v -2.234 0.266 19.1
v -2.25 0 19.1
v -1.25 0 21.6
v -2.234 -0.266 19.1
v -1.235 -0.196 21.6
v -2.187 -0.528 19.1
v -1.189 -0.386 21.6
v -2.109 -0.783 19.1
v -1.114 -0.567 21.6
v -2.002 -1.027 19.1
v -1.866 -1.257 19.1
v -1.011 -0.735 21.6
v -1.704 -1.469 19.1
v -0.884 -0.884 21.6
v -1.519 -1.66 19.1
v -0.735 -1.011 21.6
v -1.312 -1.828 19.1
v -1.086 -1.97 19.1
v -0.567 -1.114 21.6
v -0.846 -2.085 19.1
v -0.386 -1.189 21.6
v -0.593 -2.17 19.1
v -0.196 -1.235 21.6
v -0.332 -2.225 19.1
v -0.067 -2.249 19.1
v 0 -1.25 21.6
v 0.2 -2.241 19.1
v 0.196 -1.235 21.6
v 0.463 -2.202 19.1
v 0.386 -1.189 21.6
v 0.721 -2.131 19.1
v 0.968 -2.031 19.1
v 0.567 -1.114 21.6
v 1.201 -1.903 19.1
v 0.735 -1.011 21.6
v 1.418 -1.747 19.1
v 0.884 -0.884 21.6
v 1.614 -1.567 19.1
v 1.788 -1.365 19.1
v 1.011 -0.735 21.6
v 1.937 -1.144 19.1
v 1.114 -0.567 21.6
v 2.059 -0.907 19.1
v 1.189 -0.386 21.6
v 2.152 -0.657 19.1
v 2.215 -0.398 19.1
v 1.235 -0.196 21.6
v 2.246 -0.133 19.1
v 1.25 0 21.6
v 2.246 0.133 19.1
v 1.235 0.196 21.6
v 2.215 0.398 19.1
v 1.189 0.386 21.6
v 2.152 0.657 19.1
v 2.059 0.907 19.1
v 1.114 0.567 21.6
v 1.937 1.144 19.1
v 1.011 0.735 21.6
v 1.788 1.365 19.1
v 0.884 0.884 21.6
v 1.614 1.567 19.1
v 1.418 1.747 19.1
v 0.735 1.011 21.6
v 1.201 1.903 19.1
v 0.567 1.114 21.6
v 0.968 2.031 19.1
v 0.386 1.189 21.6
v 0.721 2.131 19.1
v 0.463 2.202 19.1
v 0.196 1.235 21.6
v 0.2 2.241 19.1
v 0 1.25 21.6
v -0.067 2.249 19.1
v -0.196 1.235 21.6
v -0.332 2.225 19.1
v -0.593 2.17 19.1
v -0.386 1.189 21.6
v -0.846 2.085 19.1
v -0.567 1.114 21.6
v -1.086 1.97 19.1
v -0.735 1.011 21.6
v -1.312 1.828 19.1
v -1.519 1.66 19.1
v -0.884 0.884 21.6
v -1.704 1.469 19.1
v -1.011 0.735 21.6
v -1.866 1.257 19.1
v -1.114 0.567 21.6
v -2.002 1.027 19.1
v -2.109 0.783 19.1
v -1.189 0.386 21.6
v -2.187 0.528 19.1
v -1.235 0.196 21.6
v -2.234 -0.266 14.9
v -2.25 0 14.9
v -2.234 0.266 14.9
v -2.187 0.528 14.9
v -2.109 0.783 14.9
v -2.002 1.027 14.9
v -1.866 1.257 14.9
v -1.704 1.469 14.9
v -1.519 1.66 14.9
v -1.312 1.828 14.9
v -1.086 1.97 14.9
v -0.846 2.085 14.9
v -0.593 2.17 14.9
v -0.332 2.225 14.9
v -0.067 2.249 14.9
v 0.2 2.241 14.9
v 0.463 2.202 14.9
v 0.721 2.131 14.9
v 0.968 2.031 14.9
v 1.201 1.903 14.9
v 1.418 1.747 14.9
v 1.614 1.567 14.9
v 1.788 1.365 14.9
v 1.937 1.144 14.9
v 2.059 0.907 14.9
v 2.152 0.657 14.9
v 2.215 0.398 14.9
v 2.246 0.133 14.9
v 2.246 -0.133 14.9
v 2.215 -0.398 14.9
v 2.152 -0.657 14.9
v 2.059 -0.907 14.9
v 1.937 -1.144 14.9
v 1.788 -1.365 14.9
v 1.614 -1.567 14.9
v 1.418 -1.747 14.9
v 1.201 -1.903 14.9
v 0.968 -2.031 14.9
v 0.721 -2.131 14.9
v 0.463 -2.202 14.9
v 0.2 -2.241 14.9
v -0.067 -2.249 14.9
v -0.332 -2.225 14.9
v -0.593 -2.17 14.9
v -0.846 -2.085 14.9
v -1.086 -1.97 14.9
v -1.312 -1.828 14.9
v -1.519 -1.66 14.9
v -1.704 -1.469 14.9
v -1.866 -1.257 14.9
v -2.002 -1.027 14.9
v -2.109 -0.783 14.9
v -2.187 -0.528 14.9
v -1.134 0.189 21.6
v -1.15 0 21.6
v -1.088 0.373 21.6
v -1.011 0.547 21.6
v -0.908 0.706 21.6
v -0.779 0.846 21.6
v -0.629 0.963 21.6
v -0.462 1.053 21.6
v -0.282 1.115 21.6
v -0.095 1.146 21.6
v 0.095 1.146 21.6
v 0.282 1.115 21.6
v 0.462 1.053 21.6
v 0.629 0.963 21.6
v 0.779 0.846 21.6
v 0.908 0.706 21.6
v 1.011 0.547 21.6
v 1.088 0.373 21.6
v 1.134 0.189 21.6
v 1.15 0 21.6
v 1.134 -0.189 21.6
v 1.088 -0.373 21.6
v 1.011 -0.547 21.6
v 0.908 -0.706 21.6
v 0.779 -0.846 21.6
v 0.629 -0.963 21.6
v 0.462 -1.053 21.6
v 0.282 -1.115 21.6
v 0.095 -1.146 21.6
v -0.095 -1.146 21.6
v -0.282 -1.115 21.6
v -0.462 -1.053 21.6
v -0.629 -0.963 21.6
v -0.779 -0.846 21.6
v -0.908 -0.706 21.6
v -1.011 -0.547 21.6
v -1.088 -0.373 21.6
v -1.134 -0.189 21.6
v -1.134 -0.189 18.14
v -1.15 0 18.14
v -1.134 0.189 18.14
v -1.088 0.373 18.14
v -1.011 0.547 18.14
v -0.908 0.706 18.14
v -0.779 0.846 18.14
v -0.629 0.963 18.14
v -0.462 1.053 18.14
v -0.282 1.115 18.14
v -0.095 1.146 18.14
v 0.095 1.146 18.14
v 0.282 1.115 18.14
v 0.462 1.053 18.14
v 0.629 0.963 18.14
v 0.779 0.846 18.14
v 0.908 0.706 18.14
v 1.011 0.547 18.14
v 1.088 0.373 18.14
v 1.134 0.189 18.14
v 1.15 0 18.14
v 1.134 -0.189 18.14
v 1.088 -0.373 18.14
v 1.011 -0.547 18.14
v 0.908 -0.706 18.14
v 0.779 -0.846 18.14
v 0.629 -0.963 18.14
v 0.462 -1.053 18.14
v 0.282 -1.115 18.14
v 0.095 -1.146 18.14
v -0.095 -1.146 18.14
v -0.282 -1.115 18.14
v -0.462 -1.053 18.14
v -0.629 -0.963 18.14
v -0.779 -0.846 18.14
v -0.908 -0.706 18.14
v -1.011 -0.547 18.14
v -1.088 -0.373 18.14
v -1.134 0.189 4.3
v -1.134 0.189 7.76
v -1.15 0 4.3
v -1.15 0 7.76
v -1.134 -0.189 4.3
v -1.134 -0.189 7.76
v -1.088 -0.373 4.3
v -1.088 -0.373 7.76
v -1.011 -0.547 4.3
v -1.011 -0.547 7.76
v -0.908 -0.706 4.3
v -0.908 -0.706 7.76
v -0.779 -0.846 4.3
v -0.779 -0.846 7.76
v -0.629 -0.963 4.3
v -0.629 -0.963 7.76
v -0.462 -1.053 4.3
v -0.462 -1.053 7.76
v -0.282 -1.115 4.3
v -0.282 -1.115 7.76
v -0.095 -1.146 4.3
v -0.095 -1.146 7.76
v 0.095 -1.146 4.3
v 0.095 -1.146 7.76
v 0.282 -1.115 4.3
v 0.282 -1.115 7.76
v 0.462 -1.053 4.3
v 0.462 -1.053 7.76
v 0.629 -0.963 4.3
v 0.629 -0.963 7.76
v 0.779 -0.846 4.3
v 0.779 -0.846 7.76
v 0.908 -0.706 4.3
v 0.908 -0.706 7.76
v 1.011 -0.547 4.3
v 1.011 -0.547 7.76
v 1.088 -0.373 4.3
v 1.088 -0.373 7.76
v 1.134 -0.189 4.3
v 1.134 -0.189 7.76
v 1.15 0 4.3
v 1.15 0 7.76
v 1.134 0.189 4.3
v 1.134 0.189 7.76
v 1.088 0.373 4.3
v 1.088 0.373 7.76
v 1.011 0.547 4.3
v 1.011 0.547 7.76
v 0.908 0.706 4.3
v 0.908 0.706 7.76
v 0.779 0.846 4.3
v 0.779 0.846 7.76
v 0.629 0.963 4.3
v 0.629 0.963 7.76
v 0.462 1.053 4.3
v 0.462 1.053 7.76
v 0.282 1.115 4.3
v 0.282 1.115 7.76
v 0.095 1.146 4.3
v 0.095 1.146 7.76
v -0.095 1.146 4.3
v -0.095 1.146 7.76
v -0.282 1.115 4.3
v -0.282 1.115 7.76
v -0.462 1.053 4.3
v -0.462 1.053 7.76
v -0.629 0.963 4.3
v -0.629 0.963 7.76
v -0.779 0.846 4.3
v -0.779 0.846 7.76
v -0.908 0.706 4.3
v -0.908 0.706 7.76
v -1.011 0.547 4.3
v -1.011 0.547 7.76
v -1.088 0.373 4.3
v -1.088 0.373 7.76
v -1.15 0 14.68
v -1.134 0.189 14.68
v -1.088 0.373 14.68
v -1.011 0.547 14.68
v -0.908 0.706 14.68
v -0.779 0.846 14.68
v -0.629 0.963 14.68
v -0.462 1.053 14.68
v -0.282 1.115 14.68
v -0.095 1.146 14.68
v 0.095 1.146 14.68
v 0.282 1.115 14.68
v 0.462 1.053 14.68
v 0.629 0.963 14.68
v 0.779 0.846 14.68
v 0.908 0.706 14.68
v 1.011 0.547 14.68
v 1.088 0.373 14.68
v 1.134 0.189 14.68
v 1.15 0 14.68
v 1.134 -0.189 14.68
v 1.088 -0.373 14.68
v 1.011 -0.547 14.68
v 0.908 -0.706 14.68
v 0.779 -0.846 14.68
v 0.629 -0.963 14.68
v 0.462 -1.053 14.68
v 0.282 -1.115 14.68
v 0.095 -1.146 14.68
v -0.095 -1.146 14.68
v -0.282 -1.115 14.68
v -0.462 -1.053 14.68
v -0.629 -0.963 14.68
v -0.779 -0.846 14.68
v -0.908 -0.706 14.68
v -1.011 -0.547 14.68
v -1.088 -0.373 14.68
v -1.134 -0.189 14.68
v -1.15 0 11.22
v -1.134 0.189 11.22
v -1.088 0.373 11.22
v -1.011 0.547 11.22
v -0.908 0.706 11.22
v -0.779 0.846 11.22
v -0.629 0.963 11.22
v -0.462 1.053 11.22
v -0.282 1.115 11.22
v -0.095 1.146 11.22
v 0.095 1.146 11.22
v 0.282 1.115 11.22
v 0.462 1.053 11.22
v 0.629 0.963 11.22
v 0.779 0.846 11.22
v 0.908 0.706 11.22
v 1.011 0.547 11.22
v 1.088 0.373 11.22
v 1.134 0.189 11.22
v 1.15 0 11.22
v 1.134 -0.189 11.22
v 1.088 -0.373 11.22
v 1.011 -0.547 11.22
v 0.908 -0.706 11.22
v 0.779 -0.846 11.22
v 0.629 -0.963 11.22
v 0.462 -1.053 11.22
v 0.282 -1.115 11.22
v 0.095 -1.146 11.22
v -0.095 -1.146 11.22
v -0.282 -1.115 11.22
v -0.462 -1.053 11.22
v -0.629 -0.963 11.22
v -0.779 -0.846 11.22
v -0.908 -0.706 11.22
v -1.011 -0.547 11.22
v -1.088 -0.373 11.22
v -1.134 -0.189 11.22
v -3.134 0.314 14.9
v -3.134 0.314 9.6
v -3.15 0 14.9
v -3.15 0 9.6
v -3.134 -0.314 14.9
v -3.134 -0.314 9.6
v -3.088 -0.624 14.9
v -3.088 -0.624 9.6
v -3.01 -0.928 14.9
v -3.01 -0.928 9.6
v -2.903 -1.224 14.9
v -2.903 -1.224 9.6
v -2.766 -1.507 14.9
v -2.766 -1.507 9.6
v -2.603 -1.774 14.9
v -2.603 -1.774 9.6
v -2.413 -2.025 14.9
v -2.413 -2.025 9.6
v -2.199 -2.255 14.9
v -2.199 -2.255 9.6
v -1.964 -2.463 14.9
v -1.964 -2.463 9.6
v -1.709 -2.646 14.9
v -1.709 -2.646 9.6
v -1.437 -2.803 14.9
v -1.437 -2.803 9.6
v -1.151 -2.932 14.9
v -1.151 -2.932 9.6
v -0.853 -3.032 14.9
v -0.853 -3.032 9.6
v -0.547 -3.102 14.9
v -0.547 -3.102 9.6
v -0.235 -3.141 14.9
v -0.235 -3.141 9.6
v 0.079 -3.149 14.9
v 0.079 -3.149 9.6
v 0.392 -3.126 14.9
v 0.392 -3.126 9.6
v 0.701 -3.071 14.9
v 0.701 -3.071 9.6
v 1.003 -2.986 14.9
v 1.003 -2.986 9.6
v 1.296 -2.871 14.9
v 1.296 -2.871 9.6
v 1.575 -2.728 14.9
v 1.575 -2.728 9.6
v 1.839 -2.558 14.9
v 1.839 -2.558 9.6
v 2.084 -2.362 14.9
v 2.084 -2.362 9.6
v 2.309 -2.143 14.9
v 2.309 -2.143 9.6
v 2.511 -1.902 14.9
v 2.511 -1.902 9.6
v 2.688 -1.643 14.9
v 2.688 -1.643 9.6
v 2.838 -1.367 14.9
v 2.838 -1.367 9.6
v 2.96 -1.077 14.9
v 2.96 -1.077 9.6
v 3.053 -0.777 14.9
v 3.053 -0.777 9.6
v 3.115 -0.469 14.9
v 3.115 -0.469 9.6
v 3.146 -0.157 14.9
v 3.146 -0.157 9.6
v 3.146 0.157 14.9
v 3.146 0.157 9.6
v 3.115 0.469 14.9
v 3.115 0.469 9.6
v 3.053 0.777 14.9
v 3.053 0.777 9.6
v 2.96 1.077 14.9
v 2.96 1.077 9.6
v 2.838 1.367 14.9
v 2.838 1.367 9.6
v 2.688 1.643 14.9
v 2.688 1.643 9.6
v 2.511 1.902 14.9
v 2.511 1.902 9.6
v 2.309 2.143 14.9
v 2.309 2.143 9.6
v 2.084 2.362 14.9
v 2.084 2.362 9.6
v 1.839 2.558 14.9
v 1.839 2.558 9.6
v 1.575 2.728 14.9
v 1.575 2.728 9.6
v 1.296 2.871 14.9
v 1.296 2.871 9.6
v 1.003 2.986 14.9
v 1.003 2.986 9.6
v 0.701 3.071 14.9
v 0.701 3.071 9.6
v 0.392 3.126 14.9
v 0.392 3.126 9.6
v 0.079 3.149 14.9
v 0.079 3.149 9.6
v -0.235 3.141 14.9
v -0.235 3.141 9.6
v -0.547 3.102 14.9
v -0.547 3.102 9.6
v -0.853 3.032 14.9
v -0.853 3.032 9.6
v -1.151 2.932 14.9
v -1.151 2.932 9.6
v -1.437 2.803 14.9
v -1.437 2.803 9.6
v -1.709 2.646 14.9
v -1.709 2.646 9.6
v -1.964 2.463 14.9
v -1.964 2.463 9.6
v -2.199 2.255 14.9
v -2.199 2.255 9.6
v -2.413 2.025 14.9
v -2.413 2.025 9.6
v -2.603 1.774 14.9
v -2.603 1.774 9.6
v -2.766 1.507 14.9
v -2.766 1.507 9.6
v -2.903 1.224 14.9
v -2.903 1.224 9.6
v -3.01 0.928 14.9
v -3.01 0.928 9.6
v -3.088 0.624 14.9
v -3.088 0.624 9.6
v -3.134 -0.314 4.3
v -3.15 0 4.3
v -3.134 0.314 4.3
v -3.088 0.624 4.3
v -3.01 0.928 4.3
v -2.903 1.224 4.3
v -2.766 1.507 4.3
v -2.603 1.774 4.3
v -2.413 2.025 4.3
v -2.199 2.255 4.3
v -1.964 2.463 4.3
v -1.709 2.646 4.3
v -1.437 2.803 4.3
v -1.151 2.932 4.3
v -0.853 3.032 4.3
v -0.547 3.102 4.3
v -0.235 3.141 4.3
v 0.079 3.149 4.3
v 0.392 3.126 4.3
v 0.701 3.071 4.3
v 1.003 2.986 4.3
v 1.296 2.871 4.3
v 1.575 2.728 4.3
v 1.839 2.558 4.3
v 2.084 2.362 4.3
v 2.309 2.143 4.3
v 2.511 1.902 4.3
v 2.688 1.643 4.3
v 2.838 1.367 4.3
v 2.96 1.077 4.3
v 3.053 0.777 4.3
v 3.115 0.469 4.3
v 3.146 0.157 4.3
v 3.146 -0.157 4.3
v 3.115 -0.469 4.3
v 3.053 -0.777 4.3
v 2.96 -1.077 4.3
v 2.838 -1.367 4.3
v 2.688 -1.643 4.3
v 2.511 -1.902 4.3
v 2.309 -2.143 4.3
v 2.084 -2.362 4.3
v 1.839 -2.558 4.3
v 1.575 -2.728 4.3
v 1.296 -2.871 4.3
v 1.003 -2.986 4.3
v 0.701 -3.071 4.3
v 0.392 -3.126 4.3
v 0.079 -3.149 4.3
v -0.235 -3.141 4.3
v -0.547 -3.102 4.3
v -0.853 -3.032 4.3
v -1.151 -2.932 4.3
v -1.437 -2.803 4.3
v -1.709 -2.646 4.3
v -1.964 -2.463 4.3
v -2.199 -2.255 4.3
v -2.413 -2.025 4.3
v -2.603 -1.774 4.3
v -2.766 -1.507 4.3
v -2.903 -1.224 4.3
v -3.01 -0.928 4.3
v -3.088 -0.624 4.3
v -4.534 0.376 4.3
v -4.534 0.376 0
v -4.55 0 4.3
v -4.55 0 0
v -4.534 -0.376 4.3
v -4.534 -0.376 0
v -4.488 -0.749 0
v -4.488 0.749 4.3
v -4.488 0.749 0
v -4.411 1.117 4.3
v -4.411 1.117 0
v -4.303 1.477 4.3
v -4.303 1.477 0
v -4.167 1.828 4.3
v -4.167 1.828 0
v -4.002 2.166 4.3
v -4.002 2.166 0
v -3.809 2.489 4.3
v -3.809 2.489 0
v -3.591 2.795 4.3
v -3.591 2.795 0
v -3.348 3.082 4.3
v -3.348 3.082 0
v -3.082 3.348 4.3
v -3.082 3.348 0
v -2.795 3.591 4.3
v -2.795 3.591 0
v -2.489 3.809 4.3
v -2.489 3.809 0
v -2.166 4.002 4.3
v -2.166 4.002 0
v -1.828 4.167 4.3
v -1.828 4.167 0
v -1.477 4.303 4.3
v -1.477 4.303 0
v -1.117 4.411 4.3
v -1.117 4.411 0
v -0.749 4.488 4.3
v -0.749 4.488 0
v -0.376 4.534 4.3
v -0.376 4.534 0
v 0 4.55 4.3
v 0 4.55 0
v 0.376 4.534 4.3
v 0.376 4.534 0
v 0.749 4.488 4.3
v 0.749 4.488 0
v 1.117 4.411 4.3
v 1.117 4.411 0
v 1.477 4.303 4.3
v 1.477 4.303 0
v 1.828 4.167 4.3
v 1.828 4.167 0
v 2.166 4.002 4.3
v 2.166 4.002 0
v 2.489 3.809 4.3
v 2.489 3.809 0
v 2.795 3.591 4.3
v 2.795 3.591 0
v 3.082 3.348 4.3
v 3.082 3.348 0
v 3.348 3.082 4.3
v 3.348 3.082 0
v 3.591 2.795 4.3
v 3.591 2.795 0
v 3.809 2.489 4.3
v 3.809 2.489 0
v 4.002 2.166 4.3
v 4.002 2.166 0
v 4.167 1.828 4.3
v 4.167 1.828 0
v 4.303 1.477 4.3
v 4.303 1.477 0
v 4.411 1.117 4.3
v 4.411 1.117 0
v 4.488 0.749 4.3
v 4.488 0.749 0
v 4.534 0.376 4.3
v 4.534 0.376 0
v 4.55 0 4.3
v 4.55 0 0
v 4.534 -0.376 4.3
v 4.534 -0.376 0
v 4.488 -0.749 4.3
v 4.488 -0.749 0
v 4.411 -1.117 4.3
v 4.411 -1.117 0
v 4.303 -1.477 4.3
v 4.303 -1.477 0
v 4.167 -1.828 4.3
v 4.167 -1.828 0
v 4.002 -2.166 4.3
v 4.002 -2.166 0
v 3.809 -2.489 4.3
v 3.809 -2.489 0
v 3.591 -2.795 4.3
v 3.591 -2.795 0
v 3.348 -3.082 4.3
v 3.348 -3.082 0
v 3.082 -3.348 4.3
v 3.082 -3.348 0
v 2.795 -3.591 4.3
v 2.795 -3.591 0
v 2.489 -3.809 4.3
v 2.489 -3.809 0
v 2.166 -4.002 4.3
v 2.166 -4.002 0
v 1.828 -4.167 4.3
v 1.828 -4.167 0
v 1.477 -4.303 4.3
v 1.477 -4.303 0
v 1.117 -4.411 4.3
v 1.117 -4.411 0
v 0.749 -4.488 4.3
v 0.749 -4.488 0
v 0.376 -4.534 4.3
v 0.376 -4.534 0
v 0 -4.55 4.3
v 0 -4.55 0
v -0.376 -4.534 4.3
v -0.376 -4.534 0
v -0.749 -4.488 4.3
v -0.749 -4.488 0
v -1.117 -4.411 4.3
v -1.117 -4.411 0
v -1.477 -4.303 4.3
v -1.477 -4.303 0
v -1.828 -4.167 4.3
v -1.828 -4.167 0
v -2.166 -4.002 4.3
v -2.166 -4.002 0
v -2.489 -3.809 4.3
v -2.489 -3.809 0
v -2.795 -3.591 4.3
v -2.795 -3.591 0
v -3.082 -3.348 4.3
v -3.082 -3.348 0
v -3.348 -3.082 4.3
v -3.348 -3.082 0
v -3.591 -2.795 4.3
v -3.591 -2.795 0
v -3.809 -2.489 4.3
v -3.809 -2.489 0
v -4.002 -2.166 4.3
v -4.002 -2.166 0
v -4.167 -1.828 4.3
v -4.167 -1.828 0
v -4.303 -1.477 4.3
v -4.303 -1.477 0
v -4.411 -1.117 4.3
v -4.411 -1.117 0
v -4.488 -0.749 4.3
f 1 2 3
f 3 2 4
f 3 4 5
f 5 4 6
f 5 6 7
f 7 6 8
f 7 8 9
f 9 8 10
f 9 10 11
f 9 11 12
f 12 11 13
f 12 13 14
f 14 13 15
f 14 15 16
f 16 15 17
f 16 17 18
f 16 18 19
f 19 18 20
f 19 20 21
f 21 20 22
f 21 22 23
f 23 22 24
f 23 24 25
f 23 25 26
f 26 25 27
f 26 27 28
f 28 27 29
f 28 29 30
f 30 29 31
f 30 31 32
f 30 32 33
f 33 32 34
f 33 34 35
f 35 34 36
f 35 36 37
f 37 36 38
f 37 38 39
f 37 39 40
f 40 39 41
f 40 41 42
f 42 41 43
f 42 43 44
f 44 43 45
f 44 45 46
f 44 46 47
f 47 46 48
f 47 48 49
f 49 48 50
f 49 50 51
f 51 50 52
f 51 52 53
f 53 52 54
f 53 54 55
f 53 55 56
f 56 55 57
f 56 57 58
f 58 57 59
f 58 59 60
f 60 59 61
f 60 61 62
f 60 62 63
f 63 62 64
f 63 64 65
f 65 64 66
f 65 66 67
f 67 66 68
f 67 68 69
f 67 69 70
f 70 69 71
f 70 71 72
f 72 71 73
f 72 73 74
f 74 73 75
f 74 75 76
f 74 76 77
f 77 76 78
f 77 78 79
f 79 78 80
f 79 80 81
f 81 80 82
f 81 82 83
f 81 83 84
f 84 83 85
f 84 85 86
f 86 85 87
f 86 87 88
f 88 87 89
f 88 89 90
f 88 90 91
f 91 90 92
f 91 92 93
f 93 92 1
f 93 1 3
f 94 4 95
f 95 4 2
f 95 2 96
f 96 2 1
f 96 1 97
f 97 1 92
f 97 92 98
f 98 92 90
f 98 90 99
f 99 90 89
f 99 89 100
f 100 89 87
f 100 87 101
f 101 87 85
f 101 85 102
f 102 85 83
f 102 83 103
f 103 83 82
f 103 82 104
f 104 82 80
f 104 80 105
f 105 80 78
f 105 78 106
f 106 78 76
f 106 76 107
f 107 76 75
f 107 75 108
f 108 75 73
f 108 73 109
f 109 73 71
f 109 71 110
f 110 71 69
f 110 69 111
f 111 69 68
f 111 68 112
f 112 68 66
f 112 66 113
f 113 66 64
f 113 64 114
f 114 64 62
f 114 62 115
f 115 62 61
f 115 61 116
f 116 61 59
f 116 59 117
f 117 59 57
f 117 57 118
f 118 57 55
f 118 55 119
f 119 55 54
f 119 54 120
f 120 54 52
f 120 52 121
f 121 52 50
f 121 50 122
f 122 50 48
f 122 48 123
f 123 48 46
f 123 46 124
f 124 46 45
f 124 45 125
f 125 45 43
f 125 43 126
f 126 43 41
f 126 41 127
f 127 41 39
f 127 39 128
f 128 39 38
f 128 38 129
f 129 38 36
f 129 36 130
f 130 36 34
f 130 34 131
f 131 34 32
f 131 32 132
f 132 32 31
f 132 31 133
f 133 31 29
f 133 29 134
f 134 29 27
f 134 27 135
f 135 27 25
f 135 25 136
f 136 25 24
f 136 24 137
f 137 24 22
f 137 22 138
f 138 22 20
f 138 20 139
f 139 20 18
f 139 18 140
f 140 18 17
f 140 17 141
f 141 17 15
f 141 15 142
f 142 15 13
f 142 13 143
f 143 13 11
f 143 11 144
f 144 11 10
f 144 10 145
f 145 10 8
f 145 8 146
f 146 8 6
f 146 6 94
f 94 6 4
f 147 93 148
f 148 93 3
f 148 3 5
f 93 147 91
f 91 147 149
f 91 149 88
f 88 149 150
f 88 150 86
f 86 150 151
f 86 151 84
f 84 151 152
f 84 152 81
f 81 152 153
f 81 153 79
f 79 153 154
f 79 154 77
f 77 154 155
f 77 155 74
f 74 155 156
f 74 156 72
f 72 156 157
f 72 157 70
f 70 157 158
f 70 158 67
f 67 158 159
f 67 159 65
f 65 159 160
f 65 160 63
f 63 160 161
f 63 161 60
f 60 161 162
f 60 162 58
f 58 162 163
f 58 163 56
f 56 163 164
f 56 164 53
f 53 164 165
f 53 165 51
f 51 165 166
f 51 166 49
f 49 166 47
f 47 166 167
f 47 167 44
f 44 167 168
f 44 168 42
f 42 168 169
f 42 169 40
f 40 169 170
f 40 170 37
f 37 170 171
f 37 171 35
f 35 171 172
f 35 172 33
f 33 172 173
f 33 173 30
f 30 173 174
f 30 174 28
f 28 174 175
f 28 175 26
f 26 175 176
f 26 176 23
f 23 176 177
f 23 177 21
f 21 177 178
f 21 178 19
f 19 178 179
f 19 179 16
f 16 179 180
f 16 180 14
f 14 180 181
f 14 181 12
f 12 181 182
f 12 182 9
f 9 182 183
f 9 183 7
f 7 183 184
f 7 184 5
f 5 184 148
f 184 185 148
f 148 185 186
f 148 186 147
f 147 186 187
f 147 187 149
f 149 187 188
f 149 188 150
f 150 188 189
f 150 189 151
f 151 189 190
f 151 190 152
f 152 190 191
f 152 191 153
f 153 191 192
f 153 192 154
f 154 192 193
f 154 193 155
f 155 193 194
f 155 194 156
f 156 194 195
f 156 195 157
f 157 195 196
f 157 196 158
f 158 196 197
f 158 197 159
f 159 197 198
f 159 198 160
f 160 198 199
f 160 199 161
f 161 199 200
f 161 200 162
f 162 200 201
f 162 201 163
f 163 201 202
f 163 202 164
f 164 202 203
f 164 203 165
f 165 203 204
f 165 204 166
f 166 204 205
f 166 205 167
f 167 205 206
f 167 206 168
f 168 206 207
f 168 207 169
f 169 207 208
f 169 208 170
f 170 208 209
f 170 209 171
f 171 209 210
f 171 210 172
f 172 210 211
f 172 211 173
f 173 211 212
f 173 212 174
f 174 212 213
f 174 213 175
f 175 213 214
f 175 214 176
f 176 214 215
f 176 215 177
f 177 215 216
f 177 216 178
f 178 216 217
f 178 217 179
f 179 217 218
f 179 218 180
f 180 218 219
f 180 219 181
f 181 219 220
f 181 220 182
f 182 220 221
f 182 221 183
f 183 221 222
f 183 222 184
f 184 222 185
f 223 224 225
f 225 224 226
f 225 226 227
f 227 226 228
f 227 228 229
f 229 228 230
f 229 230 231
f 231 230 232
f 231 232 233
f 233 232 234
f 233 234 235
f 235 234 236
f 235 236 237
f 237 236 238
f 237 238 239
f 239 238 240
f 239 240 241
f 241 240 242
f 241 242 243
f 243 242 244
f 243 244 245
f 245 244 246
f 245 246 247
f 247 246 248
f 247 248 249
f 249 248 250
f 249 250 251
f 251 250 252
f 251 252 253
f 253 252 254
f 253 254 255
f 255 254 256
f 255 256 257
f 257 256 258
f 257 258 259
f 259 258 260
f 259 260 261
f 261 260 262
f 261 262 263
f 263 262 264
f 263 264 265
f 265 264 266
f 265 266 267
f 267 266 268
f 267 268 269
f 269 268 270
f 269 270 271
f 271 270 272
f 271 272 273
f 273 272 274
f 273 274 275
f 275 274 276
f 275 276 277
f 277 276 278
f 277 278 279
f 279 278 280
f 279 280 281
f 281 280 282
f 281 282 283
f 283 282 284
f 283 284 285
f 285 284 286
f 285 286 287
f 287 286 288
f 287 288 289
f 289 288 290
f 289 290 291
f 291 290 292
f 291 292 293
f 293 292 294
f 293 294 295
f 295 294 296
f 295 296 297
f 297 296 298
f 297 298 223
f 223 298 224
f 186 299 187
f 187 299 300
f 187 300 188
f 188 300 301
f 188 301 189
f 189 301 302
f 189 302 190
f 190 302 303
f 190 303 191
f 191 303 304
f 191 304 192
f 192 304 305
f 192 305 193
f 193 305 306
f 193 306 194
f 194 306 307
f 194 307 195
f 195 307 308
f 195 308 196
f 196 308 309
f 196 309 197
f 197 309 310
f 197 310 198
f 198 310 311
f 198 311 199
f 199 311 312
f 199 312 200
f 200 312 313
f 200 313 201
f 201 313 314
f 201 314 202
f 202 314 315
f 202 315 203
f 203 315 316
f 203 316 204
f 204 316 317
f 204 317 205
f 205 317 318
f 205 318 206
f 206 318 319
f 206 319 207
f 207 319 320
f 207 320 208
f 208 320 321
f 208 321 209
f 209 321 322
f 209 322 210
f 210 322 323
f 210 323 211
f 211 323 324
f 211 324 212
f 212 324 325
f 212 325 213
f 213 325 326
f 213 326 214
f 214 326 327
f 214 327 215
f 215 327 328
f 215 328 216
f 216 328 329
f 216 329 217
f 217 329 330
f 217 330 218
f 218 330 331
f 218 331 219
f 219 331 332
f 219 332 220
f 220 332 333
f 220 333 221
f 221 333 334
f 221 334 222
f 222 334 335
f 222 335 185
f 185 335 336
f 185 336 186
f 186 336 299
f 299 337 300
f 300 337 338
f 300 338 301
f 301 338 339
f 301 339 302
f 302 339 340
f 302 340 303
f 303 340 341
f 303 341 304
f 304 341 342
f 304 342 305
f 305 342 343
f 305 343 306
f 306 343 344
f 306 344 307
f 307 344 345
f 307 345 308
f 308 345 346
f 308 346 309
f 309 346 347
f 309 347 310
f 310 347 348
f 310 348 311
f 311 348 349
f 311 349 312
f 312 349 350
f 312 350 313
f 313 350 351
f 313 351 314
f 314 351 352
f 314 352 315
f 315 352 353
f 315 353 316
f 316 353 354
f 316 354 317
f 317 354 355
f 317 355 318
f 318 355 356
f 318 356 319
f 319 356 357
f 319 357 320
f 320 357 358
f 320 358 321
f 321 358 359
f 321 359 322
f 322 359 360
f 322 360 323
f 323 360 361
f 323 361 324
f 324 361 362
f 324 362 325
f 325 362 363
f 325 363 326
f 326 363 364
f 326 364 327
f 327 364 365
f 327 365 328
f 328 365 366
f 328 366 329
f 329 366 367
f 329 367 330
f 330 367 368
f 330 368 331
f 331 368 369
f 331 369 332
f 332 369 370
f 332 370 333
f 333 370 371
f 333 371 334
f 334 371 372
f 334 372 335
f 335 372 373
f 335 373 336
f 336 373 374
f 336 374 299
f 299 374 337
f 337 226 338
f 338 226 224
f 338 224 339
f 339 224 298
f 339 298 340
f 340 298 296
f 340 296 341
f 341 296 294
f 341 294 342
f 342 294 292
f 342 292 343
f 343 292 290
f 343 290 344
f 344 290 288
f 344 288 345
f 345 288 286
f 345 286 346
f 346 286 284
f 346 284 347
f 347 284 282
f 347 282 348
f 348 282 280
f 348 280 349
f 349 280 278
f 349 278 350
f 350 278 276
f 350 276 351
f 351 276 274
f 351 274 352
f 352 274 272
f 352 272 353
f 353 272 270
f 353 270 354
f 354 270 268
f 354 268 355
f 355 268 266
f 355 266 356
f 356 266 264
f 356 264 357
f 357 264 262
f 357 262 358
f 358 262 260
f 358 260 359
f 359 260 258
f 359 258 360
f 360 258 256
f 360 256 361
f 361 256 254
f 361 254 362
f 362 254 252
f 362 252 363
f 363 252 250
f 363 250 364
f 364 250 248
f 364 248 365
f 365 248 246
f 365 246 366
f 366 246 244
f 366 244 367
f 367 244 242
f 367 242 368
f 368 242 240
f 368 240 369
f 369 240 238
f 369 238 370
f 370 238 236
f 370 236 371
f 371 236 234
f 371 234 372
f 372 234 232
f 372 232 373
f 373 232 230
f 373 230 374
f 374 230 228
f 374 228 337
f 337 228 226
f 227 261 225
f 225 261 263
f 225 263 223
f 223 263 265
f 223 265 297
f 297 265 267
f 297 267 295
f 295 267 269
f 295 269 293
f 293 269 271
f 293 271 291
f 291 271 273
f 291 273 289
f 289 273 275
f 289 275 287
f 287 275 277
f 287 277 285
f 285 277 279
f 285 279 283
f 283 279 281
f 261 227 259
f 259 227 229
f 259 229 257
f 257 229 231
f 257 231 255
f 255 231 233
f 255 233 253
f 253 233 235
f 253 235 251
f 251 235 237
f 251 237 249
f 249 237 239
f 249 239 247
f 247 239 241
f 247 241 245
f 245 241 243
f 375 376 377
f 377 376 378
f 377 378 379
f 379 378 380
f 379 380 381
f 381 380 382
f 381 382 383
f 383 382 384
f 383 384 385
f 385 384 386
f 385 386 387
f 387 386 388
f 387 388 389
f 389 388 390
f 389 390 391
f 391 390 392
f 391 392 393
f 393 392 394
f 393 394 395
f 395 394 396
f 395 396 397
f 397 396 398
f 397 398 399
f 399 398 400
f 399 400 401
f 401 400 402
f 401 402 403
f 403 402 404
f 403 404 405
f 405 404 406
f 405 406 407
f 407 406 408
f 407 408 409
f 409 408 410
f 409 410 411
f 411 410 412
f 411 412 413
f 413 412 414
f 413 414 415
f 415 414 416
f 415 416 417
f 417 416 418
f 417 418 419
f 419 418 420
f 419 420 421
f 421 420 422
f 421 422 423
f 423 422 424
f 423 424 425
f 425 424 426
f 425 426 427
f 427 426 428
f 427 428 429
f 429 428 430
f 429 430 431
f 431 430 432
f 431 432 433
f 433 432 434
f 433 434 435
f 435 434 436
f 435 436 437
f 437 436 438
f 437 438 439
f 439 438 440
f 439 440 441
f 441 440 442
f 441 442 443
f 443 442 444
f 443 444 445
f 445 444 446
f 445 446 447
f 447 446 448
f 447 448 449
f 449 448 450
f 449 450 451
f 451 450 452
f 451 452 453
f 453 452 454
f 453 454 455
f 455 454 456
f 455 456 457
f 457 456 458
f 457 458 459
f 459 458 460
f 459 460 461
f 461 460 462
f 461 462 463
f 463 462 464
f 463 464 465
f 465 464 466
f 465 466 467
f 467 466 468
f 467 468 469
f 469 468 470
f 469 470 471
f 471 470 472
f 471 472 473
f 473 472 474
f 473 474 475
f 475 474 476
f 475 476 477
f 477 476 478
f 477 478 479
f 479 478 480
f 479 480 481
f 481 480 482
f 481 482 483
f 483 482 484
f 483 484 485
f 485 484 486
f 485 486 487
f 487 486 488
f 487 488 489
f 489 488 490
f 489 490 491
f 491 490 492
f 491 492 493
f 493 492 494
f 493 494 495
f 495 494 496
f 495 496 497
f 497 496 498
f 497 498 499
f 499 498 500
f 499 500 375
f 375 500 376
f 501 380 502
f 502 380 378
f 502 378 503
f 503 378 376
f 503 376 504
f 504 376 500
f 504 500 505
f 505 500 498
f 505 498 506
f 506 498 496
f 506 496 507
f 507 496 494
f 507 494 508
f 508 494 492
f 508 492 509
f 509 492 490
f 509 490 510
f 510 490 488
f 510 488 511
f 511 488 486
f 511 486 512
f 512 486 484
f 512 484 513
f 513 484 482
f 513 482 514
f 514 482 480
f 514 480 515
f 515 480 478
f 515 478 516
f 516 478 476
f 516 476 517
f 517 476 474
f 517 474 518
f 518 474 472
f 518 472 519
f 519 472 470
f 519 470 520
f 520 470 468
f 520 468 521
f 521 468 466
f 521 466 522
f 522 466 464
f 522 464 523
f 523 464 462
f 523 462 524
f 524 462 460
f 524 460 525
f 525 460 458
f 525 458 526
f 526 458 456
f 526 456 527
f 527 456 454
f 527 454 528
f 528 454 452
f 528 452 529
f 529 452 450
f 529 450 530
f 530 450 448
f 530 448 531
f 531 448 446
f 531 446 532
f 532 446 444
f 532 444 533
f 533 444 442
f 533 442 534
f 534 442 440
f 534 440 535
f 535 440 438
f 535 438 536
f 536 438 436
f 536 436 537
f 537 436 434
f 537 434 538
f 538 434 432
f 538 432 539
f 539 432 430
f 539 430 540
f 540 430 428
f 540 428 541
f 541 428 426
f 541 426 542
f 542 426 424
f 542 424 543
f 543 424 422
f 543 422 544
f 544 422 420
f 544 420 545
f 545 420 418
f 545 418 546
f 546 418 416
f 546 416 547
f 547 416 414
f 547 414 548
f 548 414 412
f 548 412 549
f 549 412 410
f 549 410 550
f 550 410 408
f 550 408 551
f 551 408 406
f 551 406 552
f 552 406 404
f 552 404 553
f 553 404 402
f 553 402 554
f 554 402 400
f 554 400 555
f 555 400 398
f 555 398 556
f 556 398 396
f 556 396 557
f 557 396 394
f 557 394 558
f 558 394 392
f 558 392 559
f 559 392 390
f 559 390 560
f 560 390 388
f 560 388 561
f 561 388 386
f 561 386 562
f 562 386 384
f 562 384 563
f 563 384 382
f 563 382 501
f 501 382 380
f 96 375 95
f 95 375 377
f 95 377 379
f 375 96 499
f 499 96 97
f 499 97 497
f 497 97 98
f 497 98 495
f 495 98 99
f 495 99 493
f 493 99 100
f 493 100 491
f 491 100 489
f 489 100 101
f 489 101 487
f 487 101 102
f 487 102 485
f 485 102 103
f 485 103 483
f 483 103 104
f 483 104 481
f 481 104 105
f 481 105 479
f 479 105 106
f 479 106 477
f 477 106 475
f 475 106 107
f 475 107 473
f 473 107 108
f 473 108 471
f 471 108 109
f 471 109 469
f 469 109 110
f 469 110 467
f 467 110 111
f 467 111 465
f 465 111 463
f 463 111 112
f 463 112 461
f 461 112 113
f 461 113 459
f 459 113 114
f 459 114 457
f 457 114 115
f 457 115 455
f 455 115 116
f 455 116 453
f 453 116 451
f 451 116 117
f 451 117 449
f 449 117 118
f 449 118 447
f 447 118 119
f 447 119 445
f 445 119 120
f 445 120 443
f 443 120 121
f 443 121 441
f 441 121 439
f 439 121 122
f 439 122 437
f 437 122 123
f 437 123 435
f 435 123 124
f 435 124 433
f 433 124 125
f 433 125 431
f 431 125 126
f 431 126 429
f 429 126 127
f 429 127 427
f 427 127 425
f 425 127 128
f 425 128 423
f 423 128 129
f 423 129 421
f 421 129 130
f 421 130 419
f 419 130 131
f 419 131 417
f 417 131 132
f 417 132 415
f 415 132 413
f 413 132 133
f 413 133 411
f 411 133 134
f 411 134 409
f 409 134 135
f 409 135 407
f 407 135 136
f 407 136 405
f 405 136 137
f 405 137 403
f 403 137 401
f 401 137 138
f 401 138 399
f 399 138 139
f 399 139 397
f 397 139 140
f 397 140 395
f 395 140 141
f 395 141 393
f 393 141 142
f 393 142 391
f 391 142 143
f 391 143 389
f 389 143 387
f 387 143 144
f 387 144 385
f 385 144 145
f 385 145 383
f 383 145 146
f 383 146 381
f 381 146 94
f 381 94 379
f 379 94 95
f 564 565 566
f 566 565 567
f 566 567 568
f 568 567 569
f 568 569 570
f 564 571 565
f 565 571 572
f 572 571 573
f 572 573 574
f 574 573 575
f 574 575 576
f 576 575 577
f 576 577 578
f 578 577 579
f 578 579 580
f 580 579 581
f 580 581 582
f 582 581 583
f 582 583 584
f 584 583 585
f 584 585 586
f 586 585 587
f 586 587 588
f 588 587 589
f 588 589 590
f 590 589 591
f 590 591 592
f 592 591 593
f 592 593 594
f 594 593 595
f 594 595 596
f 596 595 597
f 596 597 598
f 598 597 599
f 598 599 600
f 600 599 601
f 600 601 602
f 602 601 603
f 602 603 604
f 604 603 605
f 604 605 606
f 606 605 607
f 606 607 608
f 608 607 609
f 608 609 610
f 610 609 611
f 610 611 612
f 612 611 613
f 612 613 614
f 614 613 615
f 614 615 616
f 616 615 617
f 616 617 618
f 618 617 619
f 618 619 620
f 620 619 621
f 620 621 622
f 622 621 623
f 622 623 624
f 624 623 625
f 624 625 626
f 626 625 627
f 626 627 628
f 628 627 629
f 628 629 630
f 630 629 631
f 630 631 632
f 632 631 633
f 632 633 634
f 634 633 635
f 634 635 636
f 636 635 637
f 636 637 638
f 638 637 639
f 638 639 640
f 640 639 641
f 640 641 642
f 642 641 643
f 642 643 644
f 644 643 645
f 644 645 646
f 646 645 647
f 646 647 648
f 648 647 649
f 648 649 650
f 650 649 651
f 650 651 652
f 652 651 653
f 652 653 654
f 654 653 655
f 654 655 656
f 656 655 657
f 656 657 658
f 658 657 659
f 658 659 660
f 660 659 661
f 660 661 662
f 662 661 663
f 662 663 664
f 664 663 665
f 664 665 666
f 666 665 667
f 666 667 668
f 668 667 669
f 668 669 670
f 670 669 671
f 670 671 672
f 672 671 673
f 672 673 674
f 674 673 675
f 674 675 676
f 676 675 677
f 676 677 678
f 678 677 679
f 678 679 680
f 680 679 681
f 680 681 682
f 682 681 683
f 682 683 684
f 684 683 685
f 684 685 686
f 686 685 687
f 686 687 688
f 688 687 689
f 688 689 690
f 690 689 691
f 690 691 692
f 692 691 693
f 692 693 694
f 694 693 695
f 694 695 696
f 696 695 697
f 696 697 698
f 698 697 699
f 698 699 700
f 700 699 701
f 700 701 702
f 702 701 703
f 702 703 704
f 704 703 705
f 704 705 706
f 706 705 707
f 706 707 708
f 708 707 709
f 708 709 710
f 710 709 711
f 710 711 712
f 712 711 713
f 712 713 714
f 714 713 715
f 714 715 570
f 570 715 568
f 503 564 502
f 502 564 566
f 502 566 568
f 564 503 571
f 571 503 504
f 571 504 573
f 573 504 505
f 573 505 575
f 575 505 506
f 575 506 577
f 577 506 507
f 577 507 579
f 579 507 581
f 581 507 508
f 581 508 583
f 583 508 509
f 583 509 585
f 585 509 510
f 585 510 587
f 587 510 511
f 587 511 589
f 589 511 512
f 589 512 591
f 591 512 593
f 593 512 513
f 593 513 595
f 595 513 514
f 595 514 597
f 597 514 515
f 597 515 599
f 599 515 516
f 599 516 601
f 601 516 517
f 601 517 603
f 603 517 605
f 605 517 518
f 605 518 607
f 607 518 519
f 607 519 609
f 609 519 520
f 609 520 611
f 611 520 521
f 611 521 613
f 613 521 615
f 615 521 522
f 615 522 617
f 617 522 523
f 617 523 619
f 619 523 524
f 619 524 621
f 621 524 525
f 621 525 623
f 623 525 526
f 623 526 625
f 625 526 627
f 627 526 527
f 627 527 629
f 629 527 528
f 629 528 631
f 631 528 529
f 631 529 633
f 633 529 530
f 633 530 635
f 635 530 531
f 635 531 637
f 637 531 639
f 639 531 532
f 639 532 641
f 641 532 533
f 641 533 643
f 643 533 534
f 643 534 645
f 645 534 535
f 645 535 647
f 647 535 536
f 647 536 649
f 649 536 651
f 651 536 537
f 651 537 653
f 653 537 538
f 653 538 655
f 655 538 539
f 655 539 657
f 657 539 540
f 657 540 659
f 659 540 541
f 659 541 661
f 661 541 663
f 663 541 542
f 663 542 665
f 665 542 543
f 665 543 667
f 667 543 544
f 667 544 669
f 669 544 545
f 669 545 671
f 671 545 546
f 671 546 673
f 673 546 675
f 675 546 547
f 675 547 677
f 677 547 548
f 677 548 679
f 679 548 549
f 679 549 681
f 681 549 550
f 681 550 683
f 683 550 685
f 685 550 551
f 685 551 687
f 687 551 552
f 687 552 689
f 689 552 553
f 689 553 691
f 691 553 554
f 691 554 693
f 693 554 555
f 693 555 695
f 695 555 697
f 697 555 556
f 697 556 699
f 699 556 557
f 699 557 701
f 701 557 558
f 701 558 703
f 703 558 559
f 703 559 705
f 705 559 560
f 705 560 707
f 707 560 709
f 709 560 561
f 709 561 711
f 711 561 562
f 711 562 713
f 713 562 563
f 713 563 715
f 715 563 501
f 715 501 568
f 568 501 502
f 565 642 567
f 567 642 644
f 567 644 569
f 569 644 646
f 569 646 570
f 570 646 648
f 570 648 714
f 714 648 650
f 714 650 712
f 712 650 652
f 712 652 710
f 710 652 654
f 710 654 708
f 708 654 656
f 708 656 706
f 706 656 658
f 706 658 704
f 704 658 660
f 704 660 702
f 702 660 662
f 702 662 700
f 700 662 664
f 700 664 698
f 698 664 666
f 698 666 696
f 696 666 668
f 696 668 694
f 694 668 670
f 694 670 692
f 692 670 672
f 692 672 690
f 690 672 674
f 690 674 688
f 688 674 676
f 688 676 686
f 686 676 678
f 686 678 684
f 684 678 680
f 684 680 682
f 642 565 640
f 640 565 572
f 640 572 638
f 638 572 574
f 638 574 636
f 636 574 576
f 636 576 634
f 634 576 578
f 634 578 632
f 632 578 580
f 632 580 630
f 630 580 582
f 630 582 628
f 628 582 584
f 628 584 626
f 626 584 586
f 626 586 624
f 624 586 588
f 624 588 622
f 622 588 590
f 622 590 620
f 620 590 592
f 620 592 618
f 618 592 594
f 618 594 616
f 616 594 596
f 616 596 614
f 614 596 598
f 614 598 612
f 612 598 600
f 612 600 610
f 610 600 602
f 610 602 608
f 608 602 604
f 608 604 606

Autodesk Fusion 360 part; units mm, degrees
sketch "Sketch1" plane through (0, 0, 0) normal (0, 0, 1) x (1, 0, 0)
  circle A0 centre (0, 0) radius 2.25
  circle A1 centre (0, 0) radius 3.15
  circle A2 centre (0, 0) radius 4.55
  circle A3 centre (0, 0) radius 1.15
  dimension "d1" = 9.1
  dimension "d2" = 6.3
  dimension "d3" = 4.5
  dimension "d4" = 2.3
extrude "Extrude1" add sketch "Sketch1" along normal blind 4.3 contours A0 | A1 | A2 | A3
extrude "Extrude2" add sketch "Sketch1" along normal blind 14.9 contours A0 | A1 | A3
extrude "Extrude3" add sketch "Sketch1" along normal blind 21.6 contours A0 | A3
extrude "Extrude4" cut sketch "Sketch1" along normal up to surface (17.3 mm away) from surface at 4.3 contours A3
chamfer "Chamfer1" distance 1 distance2 2.5 1 edges at (-2.0977, -0.8136, 21.6) measured on face at (1.875, -0.1118, 21.6)
